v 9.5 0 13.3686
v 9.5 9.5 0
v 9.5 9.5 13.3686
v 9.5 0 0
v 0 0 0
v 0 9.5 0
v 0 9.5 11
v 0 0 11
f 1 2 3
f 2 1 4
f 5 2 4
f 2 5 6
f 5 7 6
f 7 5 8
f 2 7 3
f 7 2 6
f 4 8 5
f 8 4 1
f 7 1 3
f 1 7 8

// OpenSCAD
$fn = 30;

dd = 9.5;
hh = 11;

angle = 14;

d2 = dd / cos(angle);
h2 = hh + d2 * sin(angle);

ofs = 0;


module space() {

difference() {
	union() {
        translate([0, 0, 0]) cube([dd,dd,h2], center = false);
    }
    translate([0, 0, hh]) 
        rotate([0,-angle,0])cube([d2, dd, 5], center = false);
}

}

translate([0, 0, 0])space();
